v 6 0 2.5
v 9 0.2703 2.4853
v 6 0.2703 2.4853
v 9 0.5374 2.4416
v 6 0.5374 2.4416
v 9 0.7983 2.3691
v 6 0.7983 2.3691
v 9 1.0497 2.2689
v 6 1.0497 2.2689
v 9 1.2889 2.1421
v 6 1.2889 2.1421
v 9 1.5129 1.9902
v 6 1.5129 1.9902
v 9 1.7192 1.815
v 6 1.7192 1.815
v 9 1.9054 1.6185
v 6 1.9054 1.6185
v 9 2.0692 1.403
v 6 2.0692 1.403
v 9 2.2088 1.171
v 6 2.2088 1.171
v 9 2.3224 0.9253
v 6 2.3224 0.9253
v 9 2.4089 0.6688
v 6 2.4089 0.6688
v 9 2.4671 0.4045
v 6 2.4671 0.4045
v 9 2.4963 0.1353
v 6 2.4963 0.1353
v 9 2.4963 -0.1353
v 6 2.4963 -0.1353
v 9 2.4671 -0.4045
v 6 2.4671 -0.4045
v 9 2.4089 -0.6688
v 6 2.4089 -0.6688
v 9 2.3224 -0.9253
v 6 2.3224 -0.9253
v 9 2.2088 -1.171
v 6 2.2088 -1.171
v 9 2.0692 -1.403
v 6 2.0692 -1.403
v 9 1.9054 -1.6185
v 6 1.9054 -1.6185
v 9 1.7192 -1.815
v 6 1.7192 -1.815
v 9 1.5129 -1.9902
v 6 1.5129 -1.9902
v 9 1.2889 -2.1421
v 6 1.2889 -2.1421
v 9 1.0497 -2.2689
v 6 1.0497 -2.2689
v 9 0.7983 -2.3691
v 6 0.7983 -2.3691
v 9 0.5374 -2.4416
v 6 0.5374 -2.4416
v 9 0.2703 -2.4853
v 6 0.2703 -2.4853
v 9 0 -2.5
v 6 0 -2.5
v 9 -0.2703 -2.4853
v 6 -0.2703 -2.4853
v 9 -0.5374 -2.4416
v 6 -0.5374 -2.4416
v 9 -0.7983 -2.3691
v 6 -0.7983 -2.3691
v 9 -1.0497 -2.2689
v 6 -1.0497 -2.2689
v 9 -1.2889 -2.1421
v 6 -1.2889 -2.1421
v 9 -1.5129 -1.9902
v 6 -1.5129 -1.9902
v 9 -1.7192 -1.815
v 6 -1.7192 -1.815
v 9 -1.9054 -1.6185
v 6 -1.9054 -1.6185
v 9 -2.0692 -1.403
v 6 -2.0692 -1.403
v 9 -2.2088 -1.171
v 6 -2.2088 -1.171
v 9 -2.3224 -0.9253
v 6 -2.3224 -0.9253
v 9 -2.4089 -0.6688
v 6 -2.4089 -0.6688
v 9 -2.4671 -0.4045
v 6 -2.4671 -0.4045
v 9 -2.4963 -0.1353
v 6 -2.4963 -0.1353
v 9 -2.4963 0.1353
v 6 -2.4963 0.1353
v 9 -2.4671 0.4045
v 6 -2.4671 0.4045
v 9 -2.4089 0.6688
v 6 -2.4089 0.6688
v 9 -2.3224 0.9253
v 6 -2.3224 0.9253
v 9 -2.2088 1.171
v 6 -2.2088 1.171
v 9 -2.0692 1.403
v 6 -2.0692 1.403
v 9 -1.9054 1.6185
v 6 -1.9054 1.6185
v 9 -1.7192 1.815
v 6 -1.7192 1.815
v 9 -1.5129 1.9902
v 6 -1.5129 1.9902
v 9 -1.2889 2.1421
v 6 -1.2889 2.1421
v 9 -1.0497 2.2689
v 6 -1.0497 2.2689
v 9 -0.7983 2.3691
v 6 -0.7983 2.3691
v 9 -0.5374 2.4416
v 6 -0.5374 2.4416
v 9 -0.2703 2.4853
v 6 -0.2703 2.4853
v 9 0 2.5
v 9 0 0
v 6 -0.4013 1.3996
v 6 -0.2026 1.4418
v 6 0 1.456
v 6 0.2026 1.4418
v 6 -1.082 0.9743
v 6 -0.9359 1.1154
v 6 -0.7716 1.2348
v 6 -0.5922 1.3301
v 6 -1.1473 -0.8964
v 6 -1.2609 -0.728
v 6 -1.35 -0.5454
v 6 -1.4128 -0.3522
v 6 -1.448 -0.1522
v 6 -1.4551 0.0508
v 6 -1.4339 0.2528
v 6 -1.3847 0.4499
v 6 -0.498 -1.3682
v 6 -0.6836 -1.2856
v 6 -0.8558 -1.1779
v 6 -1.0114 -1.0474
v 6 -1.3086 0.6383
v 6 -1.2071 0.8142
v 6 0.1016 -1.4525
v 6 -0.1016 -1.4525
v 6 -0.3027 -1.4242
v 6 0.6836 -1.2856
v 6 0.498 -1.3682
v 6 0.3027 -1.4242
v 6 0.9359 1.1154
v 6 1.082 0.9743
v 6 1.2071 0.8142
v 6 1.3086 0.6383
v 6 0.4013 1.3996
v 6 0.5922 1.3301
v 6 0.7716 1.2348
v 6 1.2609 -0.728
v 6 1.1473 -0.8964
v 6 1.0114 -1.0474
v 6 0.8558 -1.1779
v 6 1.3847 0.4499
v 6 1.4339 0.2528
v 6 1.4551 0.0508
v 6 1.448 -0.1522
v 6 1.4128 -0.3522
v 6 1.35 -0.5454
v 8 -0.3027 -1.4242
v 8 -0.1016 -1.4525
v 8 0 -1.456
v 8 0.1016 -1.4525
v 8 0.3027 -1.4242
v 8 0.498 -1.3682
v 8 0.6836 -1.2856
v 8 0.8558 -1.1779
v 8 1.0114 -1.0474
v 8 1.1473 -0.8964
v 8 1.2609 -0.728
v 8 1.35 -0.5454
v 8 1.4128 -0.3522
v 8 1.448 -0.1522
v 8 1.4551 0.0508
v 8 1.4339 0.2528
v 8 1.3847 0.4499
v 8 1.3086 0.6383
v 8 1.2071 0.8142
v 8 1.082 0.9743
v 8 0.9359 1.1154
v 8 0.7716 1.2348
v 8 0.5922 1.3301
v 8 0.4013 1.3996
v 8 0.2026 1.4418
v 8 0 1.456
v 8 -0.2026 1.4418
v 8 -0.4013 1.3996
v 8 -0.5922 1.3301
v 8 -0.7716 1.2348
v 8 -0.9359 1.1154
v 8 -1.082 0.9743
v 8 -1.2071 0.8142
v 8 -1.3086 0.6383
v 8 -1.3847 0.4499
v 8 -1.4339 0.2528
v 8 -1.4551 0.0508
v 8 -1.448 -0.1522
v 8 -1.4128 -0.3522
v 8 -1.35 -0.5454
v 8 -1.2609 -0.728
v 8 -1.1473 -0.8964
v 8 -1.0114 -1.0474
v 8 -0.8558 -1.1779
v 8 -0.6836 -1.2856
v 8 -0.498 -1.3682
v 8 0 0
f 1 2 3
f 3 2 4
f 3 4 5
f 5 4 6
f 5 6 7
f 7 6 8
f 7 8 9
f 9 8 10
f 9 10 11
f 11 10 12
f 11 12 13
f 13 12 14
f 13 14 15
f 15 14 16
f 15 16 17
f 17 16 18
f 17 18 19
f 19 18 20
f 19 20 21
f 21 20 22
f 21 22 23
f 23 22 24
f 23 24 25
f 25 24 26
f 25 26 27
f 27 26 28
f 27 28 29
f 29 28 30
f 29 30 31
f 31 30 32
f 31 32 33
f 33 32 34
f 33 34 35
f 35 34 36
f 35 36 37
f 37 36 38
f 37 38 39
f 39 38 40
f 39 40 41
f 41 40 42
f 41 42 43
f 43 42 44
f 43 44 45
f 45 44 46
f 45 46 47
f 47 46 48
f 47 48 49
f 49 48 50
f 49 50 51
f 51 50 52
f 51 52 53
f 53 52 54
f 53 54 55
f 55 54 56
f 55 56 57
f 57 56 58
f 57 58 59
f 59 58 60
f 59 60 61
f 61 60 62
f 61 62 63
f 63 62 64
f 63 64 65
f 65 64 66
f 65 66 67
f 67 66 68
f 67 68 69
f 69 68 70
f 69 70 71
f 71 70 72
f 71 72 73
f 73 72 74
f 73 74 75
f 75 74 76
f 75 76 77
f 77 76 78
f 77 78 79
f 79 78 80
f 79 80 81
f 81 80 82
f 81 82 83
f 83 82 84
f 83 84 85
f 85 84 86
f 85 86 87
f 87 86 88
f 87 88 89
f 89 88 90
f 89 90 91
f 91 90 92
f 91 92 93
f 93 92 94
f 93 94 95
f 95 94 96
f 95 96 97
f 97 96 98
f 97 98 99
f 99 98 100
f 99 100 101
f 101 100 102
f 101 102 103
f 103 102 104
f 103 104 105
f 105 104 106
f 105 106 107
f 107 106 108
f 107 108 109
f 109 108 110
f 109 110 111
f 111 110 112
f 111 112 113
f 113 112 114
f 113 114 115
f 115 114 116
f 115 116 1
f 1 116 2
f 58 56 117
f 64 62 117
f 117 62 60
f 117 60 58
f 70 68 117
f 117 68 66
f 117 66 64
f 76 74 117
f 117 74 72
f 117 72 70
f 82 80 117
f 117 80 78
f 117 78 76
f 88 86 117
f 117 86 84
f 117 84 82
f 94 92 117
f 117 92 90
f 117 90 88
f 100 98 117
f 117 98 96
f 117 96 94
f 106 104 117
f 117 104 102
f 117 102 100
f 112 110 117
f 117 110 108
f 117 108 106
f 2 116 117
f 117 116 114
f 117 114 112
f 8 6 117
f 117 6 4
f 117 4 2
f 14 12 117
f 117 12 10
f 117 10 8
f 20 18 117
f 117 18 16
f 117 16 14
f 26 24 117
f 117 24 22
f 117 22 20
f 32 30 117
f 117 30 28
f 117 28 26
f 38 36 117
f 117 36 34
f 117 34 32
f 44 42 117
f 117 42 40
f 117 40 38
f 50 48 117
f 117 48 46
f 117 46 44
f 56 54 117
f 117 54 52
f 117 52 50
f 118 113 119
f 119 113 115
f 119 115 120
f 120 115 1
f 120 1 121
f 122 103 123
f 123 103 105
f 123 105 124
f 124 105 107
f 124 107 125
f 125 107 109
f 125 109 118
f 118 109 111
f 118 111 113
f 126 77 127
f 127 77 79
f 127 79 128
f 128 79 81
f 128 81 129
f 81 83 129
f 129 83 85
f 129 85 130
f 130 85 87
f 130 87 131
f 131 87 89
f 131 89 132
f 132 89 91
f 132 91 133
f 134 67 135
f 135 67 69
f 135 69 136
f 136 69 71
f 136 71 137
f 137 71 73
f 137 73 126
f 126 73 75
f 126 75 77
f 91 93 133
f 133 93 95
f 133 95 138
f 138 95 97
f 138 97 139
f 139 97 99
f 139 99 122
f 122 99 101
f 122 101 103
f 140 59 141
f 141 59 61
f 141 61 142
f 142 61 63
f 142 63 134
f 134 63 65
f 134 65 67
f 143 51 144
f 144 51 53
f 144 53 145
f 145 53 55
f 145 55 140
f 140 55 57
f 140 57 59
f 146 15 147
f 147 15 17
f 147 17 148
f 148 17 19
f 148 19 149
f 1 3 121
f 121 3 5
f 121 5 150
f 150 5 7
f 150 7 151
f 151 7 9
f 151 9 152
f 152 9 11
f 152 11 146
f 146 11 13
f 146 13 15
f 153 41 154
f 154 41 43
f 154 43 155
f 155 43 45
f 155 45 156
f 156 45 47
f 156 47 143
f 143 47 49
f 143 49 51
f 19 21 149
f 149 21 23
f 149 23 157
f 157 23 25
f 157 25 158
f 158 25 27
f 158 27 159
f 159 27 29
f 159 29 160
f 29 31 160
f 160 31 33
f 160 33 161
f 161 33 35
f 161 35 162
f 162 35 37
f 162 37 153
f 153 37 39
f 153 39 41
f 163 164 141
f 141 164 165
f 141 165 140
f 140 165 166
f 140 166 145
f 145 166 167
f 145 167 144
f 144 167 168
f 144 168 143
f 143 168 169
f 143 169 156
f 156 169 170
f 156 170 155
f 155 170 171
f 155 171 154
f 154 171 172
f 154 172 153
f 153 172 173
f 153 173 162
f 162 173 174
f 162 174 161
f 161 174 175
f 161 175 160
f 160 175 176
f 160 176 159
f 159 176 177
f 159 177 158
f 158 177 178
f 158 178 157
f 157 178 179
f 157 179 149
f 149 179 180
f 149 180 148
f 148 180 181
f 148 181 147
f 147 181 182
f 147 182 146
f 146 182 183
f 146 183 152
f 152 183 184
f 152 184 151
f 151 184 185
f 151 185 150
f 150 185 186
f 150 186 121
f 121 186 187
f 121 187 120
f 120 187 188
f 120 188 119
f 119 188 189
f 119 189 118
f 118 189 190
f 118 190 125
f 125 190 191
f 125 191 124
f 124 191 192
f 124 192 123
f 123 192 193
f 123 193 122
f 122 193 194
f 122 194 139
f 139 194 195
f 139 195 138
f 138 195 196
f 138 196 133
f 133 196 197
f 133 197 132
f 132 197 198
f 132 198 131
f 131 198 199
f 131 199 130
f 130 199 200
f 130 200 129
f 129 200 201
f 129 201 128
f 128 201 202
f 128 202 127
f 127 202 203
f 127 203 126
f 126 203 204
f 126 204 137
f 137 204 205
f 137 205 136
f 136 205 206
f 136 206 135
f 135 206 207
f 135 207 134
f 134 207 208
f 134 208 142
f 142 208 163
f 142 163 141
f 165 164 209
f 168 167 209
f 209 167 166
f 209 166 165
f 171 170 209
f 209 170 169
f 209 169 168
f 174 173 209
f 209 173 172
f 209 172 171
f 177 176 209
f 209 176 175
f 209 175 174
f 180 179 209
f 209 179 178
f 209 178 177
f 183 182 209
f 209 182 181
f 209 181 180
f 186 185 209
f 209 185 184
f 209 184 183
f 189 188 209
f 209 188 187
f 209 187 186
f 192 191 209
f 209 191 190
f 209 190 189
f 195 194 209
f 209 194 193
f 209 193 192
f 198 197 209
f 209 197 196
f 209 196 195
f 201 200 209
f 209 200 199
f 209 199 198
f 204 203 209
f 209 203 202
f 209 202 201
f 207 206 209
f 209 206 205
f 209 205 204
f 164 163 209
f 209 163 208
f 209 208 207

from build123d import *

# Parameters (mm, degrees)
SKETCH2_R               = 1.455
BOSS_EXTRUDE3_DEPTH     = 6
SKETCH3_R               = 2.5
BOSS_EXTRUDE4_DEPTH     = 3
CUT_EXTRUDE1_DEPTH      = 10.669539803
CUT_EXTRUDE1_DEPTH_BACK = 10.669539803
SKETCH4_R               = 0.5
SKETCH6_R               = 1.575
BOSS_EXTRUDE5_DEPTH     = 0.15
SKETCH8_R               = 1.455
CUT_EXTRUDE2_DEPTH      = 8
SKETCH10_R              = 3.334883887
CUT_EXTRUDE3_DEPTH      = 6.473774417
SKETCH11_R              = 1.456
CUT_EXTRUDE4_DEPTH      = 2


with BuildPart() as part:
    # Sketch2 → Boss-Extrude3 (new body)
    with BuildSketch(Plane(origin=(0, 0, 0), x_dir=(0, 0, -1), z_dir=(1, 0, 0))):
        Circle(SKETCH2_R)
    extrude(amount=BOSS_EXTRUDE3_DEPTH)

    # Sketch3 → Boss-Extrude4 (add)
    with BuildSketch(Plane(origin=(6, 0, 0), x_dir=(0, 0, -1), z_dir=(1, 0, 0))):
        Circle(SKETCH3_R)
    extrude(amount=BOSS_EXTRUDE4_DEPTH)

    # Sketch4 → Cut-Extrude1 (cut, two sides: drawn at the far end of the back side and taken through both)
    with BuildSketch(Plane(origin=(0, 0, 0), x_dir=(1, 0, 0), z_dir=(0, 1, 0)).offset(-CUT_EXTRUDE1_DEPTH_BACK)):
        with Locations(Location((3, 0, 0), (0, 0, 270))):
            Circle(SKETCH4_R)
    extrude(amount=CUT_EXTRUDE1_DEPTH + CUT_EXTRUDE1_DEPTH_BACK, mode=Mode.SUBTRACT)

    # Sketch6 → Boss-Extrude5 (add)
    with BuildSketch(Plane.ZY.offset(-3)):
        Circle(SKETCH6_R)
    extrude(amount=BOSS_EXTRUDE5_DEPTH)

    # Sketch7 → Revolve1 (revolve)
    with BuildSketch(Plane.XY, mode=Mode.PRIVATE) as revolve1_sk:
        Polygon((2.85, 1.825), (0, 0.8), (2.85, 0.8), align=None)
    revolve(revolve1_sk.sketch.rotate(Axis((9.45, 0, 0), (-1, 0, 0)), 90), axis=Axis((9.45, 0, 0), (-1, 0, 0)))

    # Sketch8 → Cut-Extrude2 (cut)
    with BuildSketch(Plane.ZY):
        with Locations(Location((0, 0, 0), (0, 0, 180))):
            Circle(SKETCH8_R)
    extrude(amount=-CUT_EXTRUDE2_DEPTH, mode=Mode.SUBTRACT)


with BuildPart() as cut_extrude2_piece_1:
    # of the separate pieces the step leaves, piece 1, a body of its own (cut_extrude2_pieces)
    add(part.part.solids().sort_by_distance((6, 0, -2.5))[0])

    # Sketch11 → Cut-Extrude4 (cut)
    with BuildSketch(Plane.ZY.offset(-6)):
        Circle(SKETCH11_R)
    extrude(amount=-CUT_EXTRUDE4_DEPTH, mode=Mode.SUBTRACT)


with BuildPart() as cut_extrude2_piece_2:
    # of the separate pieces the step leaves, piece 2, a body of its own (cut_extrude2_pieces)
    add(part.part.solids().sort_by_distance((3, 0, 1.575))[0])

    # Sketch10 → Cut-Extrude3 (cut, through all)
    with BuildSketch(Plane.ZY.offset(-6)):
        Circle(SKETCH10_R)
    extrude(amount=CUT_EXTRUDE3_DEPTH, mode=Mode.SUBTRACT)


solid = cut_extrude2_piece_1.part
